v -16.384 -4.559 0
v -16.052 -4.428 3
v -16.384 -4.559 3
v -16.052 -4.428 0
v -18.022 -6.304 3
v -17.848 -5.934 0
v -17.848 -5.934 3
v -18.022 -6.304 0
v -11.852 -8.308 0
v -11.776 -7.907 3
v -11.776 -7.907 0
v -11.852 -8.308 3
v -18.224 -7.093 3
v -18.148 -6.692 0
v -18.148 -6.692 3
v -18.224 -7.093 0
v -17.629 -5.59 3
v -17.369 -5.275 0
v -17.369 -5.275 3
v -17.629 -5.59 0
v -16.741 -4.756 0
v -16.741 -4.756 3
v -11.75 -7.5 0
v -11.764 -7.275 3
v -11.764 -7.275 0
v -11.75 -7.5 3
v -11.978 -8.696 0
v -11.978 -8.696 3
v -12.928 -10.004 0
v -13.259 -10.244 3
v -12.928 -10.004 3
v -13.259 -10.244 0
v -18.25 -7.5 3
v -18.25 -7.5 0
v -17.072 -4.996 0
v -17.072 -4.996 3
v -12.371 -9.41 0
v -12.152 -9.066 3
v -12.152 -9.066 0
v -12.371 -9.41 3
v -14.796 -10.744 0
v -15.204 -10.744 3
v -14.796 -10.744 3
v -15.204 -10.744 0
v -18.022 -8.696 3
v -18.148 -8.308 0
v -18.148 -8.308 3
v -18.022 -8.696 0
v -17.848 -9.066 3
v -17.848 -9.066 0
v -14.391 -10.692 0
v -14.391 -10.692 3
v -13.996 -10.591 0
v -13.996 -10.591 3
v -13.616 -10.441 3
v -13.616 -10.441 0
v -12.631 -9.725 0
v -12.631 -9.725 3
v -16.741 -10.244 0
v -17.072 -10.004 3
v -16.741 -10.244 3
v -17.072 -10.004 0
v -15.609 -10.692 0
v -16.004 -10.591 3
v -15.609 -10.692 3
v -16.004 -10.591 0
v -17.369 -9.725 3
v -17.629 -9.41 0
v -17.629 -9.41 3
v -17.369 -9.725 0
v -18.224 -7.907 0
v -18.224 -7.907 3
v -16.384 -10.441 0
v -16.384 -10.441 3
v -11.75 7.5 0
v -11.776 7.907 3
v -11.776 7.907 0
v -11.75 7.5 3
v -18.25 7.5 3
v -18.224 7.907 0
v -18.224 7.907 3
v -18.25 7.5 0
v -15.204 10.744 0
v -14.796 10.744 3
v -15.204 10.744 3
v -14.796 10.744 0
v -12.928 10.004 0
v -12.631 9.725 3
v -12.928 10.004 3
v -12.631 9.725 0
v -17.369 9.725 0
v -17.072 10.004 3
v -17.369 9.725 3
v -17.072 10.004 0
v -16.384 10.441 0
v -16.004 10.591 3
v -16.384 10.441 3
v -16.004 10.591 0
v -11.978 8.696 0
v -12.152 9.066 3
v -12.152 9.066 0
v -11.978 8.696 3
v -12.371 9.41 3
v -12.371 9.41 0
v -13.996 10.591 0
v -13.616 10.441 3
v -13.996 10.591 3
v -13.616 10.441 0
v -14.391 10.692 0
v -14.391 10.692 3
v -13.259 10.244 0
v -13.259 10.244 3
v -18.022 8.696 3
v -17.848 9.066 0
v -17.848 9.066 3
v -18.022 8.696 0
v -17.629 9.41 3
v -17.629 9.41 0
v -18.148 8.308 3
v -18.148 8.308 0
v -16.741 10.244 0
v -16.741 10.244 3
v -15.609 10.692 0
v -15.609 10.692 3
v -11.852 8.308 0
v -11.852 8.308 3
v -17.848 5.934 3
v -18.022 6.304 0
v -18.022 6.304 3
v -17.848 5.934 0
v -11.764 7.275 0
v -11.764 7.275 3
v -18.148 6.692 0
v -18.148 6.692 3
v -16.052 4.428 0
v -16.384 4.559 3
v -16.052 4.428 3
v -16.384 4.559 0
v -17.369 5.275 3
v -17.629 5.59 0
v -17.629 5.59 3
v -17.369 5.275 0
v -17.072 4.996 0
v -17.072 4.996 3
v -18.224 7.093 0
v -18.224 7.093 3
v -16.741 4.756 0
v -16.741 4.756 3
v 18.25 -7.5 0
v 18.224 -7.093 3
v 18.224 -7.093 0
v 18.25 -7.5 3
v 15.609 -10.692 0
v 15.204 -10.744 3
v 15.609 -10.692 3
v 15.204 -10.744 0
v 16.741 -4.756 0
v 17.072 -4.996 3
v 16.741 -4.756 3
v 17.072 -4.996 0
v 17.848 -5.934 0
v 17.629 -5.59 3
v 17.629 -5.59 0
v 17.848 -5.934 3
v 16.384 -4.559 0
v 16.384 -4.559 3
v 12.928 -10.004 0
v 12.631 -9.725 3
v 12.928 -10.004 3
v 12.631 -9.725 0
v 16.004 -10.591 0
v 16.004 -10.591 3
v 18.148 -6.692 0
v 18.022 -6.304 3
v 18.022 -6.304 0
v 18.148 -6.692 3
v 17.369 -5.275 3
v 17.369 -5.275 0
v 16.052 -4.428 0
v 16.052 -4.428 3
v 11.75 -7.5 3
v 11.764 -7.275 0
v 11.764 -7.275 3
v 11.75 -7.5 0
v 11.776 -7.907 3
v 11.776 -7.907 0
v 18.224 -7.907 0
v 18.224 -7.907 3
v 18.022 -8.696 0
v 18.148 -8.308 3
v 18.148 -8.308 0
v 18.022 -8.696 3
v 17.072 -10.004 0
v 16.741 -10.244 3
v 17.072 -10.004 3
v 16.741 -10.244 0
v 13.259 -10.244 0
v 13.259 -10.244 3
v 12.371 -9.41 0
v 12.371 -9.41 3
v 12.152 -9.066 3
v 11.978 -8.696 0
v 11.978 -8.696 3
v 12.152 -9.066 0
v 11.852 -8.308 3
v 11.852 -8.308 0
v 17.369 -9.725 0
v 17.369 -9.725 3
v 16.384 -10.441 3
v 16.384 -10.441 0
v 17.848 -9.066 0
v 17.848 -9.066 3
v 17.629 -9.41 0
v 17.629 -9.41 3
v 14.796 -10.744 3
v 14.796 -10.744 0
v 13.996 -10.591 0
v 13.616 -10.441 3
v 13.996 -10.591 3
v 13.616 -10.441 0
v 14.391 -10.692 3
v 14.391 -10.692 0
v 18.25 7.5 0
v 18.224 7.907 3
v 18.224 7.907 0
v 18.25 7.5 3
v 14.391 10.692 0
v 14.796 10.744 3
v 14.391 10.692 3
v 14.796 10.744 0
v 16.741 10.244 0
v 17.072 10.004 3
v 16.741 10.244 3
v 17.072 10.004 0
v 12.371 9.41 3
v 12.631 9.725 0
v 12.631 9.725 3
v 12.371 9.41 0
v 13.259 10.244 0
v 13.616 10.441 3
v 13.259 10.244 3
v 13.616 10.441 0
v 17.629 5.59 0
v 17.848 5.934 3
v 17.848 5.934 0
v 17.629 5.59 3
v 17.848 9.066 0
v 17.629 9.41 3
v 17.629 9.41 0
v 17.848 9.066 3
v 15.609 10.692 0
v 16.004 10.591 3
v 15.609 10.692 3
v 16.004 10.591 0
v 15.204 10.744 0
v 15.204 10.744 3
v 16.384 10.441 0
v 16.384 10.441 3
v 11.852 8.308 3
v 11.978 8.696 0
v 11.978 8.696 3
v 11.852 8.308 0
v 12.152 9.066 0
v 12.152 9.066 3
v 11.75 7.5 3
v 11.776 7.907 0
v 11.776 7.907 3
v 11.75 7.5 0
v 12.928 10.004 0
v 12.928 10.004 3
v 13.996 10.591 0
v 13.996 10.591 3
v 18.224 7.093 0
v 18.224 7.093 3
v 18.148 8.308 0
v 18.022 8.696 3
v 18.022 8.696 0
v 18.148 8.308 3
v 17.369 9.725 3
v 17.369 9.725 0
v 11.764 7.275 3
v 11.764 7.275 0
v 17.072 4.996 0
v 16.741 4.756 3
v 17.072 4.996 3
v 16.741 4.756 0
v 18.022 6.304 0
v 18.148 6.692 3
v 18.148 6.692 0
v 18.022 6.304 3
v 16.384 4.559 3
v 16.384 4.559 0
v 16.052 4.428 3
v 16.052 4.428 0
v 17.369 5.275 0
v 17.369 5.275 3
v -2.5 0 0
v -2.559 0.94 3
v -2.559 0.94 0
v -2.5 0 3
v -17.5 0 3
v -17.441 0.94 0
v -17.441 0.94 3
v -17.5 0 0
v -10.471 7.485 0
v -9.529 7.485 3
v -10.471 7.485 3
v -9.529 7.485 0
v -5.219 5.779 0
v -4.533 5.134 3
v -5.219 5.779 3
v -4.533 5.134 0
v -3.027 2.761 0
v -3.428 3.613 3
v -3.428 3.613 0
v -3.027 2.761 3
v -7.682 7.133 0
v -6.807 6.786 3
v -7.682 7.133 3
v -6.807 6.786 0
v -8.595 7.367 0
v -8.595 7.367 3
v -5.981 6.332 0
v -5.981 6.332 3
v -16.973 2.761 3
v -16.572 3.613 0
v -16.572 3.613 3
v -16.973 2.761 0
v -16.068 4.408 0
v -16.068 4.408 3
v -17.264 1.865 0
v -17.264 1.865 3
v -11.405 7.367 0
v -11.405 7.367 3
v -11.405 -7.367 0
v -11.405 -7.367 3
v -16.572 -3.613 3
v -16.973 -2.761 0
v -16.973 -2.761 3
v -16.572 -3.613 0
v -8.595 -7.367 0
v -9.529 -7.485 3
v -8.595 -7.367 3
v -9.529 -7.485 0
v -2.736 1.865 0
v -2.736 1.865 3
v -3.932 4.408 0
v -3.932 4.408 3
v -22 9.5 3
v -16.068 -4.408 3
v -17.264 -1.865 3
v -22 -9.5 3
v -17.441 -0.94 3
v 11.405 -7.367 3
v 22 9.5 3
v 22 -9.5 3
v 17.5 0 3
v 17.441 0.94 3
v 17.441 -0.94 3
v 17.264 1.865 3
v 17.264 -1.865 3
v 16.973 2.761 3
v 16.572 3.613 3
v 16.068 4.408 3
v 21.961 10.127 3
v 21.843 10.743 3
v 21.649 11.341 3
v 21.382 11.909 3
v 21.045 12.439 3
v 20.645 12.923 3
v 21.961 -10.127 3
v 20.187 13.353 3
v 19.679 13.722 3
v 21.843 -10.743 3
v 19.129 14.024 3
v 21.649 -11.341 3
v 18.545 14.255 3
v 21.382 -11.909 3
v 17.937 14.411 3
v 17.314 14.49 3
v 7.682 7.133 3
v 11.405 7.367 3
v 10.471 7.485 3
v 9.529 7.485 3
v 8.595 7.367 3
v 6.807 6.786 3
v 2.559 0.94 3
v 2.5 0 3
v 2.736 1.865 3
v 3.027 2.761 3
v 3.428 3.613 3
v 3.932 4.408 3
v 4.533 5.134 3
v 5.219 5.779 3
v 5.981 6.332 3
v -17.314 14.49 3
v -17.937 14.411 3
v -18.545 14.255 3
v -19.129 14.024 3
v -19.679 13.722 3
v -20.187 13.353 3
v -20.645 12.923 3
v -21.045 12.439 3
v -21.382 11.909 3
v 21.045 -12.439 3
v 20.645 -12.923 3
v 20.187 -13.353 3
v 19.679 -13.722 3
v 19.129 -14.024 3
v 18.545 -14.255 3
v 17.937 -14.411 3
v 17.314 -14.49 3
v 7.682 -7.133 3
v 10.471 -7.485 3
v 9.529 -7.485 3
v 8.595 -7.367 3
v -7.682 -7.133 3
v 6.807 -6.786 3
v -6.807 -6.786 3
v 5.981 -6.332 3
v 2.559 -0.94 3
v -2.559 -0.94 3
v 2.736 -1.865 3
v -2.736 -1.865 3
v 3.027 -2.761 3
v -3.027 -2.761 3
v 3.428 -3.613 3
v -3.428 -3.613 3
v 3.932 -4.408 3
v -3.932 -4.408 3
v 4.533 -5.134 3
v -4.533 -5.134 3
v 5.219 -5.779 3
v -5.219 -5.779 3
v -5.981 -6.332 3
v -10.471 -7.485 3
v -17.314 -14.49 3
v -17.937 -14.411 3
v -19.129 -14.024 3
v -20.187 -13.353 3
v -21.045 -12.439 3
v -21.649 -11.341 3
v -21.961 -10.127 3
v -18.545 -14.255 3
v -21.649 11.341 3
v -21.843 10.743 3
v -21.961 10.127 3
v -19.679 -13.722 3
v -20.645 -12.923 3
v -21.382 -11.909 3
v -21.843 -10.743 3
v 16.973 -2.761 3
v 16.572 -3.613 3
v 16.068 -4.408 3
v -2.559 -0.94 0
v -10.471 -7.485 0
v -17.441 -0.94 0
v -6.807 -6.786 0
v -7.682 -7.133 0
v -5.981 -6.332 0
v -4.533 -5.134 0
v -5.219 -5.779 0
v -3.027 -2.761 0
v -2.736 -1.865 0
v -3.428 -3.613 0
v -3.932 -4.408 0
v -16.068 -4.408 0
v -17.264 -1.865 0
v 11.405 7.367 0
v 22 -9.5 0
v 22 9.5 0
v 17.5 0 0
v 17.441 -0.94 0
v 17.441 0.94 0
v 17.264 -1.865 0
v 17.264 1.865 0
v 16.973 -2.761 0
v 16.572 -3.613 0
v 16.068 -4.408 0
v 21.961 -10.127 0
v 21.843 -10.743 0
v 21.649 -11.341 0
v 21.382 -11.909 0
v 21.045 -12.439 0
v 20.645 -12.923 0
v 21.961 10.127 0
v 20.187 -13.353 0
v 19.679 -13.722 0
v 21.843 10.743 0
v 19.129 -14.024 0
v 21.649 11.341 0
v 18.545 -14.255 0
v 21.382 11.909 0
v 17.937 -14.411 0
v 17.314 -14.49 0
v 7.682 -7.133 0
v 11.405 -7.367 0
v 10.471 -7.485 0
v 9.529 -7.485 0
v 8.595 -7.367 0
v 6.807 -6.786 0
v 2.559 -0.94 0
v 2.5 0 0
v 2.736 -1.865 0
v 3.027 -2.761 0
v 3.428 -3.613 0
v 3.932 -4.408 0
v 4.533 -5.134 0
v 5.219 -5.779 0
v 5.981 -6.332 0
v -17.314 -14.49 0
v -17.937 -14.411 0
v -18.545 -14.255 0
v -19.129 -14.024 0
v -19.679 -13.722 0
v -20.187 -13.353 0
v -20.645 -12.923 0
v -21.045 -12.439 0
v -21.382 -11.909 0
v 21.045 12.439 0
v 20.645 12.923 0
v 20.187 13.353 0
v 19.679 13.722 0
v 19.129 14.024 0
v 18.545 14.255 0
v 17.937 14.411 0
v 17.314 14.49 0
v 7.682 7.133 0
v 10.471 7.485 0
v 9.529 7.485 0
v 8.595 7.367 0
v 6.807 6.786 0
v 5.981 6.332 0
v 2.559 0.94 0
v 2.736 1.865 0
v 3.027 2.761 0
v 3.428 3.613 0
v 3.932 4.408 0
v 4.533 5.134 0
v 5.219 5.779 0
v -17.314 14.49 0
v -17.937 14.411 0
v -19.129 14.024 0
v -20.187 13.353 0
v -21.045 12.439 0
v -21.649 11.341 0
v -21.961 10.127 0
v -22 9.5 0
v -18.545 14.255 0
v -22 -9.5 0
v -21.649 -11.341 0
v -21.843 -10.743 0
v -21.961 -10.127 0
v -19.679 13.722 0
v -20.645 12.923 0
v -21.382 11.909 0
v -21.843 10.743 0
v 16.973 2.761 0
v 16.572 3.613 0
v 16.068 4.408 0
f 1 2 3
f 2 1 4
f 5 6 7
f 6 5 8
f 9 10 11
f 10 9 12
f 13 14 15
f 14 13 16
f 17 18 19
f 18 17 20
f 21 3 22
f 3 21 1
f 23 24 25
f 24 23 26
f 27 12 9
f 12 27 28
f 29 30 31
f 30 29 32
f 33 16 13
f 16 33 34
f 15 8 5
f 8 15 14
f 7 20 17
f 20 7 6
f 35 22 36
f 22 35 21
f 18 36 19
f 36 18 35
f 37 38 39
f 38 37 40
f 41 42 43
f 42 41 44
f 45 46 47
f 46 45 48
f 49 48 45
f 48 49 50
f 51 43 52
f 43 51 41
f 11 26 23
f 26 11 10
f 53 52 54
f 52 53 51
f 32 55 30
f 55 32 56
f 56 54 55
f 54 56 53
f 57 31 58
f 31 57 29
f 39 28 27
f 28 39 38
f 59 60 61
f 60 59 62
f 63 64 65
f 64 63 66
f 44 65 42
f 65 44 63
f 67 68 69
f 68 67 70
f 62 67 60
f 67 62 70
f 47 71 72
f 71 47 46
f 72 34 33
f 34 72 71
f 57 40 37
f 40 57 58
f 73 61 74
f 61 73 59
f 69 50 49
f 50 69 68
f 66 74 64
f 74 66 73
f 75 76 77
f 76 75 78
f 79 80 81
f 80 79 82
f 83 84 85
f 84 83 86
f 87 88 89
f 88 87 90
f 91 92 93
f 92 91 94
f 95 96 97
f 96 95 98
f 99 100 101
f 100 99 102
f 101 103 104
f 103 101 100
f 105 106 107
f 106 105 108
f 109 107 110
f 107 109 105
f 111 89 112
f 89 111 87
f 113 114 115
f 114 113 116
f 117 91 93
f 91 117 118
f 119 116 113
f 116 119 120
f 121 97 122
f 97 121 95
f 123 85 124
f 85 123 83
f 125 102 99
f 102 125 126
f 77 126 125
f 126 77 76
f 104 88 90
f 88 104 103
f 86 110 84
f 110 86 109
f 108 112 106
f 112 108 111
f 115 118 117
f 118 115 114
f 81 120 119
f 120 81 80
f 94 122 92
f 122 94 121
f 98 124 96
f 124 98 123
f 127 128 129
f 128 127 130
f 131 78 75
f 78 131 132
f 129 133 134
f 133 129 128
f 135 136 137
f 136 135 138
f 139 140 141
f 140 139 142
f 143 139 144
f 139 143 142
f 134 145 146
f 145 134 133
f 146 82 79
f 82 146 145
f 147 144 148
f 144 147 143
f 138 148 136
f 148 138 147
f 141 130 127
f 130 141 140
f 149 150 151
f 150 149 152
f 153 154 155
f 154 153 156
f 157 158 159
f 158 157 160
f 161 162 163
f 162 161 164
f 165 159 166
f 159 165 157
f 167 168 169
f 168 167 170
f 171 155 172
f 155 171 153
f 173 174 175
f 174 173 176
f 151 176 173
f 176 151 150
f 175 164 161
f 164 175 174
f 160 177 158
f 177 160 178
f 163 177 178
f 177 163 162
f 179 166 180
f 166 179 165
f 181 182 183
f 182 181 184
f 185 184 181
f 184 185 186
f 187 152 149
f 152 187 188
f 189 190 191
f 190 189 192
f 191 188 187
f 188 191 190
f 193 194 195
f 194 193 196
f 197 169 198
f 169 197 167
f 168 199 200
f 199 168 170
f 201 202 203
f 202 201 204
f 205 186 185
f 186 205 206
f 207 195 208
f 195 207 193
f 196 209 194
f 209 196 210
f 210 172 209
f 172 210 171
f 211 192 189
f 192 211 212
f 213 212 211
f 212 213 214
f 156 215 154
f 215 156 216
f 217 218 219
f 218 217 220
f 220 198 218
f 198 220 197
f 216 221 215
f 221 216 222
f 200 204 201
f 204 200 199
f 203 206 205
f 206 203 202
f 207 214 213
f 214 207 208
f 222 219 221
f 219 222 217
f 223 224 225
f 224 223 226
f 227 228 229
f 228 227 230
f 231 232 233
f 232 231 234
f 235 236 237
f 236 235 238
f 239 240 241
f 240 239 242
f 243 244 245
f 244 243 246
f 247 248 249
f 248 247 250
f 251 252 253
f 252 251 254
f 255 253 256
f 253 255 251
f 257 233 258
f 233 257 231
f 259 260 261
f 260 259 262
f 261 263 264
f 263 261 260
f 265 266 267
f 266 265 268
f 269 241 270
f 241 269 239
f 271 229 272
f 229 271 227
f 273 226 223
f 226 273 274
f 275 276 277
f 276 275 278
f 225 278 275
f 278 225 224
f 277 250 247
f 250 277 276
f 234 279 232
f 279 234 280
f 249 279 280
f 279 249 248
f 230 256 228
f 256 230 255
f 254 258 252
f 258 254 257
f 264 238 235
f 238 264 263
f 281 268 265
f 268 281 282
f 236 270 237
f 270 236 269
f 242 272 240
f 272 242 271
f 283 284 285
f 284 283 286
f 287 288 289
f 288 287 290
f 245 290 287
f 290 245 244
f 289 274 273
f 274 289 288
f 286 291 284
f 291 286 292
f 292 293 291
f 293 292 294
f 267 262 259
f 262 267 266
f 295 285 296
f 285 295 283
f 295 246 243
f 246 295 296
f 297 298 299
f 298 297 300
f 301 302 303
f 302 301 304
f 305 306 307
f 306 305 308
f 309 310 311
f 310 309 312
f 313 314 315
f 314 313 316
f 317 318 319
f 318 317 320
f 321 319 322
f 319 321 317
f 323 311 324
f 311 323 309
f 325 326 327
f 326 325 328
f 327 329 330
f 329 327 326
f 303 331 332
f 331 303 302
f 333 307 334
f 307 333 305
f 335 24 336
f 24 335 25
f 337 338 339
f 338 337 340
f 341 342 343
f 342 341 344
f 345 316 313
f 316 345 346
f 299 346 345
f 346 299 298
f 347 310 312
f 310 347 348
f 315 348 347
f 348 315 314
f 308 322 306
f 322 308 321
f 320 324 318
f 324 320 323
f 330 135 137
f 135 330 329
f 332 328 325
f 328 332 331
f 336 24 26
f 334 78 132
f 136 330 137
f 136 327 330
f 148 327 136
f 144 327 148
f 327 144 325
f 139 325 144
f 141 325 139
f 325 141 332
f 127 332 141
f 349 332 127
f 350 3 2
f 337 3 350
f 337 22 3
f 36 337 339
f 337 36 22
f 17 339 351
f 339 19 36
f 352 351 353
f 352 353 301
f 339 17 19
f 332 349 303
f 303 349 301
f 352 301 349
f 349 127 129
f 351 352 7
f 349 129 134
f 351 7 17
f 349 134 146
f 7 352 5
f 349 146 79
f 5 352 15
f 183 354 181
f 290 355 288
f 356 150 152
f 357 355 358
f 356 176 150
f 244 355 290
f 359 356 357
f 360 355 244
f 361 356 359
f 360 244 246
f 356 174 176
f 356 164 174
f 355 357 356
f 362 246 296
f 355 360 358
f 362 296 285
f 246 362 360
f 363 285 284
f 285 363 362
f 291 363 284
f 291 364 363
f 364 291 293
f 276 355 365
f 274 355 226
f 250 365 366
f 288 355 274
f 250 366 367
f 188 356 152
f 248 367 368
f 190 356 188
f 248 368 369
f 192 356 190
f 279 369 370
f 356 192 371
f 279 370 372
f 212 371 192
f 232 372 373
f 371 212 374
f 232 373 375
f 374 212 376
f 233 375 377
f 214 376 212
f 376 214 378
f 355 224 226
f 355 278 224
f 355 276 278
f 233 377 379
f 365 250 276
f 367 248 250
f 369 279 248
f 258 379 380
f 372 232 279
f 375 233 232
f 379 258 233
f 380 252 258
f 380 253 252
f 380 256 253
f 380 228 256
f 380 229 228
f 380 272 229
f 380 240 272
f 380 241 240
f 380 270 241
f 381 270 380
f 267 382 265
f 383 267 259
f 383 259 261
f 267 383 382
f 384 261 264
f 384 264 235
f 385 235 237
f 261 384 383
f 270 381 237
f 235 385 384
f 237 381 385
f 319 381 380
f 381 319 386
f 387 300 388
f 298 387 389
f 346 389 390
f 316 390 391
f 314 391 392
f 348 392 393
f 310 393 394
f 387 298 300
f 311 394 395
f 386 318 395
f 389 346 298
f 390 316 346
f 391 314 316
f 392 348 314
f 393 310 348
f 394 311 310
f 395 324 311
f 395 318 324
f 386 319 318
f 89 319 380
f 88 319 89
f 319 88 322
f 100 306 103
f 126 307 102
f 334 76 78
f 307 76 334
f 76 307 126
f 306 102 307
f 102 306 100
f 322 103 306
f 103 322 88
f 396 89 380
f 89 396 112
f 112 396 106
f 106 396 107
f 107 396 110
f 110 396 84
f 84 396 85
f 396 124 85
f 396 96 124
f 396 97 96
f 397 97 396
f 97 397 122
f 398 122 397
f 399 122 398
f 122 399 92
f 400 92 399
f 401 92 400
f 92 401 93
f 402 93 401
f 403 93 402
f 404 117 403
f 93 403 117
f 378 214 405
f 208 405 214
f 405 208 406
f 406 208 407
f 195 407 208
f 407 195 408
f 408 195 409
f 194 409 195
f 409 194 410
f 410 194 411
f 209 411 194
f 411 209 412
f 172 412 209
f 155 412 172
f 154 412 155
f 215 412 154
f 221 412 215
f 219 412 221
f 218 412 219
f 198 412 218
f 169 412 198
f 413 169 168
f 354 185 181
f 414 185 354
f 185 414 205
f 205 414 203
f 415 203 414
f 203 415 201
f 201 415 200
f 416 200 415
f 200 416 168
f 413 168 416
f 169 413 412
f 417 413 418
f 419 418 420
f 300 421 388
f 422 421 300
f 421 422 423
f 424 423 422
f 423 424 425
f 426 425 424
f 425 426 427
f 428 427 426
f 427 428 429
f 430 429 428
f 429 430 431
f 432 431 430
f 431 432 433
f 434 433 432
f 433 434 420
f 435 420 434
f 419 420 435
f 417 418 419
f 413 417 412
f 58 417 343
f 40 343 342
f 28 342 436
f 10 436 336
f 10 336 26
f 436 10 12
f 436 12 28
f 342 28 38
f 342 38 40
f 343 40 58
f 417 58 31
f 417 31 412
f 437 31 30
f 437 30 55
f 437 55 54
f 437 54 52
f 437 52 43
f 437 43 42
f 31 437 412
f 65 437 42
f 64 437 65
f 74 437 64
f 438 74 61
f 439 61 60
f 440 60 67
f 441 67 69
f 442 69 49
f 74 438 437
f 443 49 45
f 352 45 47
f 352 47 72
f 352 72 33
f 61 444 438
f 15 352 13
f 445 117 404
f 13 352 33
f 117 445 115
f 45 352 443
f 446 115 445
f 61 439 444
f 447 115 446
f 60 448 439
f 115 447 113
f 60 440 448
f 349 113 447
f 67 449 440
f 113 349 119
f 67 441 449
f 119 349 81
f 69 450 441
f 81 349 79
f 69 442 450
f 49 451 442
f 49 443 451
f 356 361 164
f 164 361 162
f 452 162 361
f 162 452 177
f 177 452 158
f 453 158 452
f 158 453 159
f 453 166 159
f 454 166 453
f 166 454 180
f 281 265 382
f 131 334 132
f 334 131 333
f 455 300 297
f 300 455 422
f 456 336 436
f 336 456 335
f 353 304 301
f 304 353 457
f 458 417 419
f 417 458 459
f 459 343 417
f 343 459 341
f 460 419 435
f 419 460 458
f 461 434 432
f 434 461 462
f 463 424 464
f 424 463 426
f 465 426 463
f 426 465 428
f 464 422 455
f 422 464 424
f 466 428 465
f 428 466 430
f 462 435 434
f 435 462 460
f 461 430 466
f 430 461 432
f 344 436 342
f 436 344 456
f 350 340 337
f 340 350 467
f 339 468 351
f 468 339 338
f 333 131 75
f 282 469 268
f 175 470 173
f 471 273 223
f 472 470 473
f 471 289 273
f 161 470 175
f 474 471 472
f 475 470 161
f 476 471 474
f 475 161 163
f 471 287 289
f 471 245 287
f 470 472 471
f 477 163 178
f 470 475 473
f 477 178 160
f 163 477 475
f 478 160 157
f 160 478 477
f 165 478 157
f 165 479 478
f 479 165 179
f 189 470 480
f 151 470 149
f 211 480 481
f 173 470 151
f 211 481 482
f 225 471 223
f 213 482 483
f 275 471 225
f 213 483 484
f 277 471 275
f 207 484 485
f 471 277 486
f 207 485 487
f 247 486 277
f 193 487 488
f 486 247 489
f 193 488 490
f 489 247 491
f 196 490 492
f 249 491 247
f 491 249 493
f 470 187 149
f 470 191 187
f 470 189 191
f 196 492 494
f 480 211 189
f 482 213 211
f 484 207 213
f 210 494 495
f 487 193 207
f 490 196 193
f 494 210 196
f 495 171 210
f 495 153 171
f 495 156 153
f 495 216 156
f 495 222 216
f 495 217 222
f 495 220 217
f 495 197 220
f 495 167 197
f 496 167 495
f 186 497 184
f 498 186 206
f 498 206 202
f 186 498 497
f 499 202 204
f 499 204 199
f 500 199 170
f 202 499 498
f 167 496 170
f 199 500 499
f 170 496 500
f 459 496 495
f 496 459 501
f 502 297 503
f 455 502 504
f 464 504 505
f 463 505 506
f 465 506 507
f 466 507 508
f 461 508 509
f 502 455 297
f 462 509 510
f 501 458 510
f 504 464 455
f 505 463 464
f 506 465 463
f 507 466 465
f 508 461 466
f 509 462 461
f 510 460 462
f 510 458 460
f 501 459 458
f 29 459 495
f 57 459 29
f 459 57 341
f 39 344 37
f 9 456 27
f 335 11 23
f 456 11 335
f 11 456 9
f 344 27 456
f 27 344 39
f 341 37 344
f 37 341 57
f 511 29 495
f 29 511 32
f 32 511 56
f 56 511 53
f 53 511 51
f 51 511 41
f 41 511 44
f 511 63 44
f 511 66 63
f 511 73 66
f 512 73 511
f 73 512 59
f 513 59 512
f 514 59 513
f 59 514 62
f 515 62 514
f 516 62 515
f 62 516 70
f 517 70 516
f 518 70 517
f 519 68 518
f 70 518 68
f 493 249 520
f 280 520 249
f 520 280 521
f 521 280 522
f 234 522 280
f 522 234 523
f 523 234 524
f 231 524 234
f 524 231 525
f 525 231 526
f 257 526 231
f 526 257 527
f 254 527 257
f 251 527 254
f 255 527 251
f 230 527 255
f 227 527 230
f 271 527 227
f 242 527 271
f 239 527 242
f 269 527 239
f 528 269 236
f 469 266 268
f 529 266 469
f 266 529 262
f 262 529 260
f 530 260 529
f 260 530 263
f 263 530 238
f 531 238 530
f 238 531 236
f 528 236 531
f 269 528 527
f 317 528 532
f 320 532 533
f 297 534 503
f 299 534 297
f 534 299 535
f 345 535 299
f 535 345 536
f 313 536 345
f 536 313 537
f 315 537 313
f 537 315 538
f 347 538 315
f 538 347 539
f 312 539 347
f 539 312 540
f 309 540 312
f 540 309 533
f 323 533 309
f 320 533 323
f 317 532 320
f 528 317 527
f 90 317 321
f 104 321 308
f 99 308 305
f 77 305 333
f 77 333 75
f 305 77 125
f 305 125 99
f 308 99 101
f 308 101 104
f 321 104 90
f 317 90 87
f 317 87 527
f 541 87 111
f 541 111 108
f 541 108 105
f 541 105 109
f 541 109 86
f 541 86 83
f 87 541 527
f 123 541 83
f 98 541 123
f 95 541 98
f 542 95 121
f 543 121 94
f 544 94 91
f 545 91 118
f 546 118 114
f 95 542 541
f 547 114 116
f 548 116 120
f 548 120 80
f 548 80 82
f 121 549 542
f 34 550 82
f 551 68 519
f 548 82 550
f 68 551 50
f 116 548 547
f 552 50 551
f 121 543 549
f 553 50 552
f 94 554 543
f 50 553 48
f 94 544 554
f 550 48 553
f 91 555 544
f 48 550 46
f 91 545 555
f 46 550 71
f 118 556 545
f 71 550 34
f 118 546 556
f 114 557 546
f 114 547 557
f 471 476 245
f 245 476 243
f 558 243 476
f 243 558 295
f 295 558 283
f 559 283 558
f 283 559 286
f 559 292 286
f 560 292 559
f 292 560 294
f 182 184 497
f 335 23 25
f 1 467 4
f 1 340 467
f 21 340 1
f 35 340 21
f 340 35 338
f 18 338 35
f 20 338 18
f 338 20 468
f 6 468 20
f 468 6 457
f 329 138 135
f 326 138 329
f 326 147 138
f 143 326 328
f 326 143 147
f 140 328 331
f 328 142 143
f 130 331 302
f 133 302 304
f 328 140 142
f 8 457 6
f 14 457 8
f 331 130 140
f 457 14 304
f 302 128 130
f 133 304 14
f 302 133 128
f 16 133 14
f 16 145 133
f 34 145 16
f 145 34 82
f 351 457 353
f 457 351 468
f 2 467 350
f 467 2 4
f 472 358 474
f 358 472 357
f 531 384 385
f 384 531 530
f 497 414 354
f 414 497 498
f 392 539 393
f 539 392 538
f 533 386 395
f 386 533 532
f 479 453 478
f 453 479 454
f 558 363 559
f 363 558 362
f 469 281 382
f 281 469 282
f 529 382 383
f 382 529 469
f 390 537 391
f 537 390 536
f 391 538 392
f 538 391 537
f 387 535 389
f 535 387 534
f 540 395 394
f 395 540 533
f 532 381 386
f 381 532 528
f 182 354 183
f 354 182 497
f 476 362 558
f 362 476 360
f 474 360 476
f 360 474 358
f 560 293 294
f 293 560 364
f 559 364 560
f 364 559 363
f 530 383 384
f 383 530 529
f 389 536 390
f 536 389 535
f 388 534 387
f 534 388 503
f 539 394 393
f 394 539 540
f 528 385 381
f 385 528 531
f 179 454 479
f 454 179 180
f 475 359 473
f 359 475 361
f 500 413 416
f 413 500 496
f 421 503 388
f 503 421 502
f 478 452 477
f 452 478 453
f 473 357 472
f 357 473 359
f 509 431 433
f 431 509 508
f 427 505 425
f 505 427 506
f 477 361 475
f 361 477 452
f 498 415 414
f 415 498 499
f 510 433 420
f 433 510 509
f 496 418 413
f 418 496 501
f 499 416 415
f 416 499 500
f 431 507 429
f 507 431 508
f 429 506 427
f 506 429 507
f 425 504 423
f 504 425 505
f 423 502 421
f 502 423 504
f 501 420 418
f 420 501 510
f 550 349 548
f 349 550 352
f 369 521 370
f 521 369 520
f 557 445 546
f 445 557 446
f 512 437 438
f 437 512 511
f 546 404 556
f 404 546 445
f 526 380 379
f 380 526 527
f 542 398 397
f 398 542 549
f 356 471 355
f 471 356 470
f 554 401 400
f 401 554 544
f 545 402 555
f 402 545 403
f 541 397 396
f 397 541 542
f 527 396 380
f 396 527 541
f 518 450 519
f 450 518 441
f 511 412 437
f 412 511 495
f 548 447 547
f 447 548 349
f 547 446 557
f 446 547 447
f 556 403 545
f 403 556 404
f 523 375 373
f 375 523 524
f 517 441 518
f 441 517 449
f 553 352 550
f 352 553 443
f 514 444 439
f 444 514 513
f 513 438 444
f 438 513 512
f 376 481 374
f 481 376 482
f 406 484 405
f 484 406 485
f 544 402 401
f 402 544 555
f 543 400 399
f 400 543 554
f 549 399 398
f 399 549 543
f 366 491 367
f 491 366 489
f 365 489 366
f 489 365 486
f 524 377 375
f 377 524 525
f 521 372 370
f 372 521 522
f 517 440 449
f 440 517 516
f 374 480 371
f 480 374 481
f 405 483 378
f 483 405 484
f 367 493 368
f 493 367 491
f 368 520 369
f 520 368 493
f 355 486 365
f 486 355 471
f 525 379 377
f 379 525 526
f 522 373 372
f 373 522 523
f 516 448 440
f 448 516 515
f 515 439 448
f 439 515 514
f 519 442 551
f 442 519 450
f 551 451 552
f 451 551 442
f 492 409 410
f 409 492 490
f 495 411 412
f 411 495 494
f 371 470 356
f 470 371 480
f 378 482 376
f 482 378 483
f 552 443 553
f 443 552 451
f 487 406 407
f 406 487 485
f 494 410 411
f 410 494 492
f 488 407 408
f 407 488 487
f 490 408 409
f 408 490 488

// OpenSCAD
$fn = 50;


difference() {
	union() {
		hull() {
			translate(v = [-17.0000000000, 9.5000000000, 0]) {
				cylinder(h = 3, r = 5);
			}
			translate(v = [17.0000000000, 9.5000000000, 0]) {
				cylinder(h = 3, r = 5);
			}
			translate(v = [-17.0000000000, -9.5000000000, 0]) {
				cylinder(h = 3, r = 5);
			}
			translate(v = [17.0000000000, -9.5000000000, 0]) {
				cylinder(h = 3, r = 5);
			}
		}
	}
	union() {
		#translate(v = [-15.0000000000, -7.5000000000, -100.0000000000]) {
			cylinder(h = 200, r = 3.2500000000);
		}
		#translate(v = [-15.0000000000, 7.5000000000, -100.0000000000]) {
			cylinder(h = 200, r = 3.2500000000);
		}
		#translate(v = [15.0000000000, -7.5000000000, -100.0000000000]) {
			cylinder(h = 200, r = 3.2500000000);
		}
		#translate(v = [15.0000000000, 7.5000000000, -100.0000000000]) {
			cylinder(h = 200, r = 3.2500000000);
		}
		#translate(v = [-10.0000000000, 0, 0]) {
			cylinder(h = 3, r = 7.5000000000);
		}
		#translate(v = [10.0000000000, 0, 0]) {
			cylinder(h = 3, r = 7.5000000000);
		}
	}
}
